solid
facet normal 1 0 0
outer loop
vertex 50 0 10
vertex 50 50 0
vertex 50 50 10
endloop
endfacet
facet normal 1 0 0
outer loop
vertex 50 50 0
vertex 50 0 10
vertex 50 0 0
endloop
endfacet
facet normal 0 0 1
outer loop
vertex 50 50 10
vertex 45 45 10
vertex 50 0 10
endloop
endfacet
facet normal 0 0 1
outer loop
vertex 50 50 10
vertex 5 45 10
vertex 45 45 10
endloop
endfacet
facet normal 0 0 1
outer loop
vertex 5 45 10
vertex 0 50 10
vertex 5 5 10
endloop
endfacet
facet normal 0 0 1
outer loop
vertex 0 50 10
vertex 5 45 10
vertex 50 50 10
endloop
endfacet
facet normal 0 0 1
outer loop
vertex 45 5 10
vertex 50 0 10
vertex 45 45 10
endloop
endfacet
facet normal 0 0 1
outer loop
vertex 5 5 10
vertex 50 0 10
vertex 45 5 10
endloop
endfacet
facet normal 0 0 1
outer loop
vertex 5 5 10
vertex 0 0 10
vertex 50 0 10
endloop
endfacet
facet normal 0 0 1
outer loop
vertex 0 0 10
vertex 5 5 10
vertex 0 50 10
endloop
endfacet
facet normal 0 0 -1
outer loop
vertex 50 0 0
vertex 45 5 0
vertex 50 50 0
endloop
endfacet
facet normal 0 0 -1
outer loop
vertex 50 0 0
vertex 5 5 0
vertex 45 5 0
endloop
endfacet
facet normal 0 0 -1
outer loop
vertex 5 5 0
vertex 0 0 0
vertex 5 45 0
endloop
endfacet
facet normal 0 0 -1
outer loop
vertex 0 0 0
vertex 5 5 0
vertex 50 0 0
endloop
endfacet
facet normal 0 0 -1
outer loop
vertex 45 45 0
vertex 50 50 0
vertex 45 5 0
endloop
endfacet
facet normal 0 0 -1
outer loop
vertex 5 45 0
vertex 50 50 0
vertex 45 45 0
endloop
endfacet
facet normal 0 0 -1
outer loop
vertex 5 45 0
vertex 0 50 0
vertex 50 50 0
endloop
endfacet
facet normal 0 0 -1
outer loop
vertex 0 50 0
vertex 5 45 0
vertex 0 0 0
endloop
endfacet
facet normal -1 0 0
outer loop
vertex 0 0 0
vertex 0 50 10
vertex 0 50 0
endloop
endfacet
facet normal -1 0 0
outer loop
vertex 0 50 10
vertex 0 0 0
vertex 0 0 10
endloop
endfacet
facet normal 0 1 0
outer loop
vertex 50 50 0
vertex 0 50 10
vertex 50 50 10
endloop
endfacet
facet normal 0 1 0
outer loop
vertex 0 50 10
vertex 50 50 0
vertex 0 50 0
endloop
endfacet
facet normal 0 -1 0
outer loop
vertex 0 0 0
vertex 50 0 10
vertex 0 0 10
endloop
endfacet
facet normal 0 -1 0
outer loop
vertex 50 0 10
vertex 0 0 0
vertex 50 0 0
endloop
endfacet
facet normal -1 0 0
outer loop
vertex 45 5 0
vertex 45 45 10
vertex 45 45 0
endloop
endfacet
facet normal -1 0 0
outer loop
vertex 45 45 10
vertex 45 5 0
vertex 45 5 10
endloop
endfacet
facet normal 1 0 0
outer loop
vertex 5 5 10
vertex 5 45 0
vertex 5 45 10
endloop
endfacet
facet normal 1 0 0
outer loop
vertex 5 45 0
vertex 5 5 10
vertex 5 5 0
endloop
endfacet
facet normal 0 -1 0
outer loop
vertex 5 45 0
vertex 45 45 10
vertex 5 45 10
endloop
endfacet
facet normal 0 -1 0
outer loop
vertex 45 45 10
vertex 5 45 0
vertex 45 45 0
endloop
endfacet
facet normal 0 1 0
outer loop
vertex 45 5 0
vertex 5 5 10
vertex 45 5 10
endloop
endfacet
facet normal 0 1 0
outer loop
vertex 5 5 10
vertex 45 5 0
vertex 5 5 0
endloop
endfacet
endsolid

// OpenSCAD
// Building Block Parameters
block_width = 50;
block_depth = 50;
block_height = 10;
corner_radius = 5;
wall_thickness = 3;

module building_block() {
  difference() {
    cube([block_width, block_depth, block_height]);
    translate([corner_radius, corner_radius, 0])
      cube([block_width - 2 * corner_radius, block_depth - 2 * corner_radius, block_height]);
  }
}

building_block();
